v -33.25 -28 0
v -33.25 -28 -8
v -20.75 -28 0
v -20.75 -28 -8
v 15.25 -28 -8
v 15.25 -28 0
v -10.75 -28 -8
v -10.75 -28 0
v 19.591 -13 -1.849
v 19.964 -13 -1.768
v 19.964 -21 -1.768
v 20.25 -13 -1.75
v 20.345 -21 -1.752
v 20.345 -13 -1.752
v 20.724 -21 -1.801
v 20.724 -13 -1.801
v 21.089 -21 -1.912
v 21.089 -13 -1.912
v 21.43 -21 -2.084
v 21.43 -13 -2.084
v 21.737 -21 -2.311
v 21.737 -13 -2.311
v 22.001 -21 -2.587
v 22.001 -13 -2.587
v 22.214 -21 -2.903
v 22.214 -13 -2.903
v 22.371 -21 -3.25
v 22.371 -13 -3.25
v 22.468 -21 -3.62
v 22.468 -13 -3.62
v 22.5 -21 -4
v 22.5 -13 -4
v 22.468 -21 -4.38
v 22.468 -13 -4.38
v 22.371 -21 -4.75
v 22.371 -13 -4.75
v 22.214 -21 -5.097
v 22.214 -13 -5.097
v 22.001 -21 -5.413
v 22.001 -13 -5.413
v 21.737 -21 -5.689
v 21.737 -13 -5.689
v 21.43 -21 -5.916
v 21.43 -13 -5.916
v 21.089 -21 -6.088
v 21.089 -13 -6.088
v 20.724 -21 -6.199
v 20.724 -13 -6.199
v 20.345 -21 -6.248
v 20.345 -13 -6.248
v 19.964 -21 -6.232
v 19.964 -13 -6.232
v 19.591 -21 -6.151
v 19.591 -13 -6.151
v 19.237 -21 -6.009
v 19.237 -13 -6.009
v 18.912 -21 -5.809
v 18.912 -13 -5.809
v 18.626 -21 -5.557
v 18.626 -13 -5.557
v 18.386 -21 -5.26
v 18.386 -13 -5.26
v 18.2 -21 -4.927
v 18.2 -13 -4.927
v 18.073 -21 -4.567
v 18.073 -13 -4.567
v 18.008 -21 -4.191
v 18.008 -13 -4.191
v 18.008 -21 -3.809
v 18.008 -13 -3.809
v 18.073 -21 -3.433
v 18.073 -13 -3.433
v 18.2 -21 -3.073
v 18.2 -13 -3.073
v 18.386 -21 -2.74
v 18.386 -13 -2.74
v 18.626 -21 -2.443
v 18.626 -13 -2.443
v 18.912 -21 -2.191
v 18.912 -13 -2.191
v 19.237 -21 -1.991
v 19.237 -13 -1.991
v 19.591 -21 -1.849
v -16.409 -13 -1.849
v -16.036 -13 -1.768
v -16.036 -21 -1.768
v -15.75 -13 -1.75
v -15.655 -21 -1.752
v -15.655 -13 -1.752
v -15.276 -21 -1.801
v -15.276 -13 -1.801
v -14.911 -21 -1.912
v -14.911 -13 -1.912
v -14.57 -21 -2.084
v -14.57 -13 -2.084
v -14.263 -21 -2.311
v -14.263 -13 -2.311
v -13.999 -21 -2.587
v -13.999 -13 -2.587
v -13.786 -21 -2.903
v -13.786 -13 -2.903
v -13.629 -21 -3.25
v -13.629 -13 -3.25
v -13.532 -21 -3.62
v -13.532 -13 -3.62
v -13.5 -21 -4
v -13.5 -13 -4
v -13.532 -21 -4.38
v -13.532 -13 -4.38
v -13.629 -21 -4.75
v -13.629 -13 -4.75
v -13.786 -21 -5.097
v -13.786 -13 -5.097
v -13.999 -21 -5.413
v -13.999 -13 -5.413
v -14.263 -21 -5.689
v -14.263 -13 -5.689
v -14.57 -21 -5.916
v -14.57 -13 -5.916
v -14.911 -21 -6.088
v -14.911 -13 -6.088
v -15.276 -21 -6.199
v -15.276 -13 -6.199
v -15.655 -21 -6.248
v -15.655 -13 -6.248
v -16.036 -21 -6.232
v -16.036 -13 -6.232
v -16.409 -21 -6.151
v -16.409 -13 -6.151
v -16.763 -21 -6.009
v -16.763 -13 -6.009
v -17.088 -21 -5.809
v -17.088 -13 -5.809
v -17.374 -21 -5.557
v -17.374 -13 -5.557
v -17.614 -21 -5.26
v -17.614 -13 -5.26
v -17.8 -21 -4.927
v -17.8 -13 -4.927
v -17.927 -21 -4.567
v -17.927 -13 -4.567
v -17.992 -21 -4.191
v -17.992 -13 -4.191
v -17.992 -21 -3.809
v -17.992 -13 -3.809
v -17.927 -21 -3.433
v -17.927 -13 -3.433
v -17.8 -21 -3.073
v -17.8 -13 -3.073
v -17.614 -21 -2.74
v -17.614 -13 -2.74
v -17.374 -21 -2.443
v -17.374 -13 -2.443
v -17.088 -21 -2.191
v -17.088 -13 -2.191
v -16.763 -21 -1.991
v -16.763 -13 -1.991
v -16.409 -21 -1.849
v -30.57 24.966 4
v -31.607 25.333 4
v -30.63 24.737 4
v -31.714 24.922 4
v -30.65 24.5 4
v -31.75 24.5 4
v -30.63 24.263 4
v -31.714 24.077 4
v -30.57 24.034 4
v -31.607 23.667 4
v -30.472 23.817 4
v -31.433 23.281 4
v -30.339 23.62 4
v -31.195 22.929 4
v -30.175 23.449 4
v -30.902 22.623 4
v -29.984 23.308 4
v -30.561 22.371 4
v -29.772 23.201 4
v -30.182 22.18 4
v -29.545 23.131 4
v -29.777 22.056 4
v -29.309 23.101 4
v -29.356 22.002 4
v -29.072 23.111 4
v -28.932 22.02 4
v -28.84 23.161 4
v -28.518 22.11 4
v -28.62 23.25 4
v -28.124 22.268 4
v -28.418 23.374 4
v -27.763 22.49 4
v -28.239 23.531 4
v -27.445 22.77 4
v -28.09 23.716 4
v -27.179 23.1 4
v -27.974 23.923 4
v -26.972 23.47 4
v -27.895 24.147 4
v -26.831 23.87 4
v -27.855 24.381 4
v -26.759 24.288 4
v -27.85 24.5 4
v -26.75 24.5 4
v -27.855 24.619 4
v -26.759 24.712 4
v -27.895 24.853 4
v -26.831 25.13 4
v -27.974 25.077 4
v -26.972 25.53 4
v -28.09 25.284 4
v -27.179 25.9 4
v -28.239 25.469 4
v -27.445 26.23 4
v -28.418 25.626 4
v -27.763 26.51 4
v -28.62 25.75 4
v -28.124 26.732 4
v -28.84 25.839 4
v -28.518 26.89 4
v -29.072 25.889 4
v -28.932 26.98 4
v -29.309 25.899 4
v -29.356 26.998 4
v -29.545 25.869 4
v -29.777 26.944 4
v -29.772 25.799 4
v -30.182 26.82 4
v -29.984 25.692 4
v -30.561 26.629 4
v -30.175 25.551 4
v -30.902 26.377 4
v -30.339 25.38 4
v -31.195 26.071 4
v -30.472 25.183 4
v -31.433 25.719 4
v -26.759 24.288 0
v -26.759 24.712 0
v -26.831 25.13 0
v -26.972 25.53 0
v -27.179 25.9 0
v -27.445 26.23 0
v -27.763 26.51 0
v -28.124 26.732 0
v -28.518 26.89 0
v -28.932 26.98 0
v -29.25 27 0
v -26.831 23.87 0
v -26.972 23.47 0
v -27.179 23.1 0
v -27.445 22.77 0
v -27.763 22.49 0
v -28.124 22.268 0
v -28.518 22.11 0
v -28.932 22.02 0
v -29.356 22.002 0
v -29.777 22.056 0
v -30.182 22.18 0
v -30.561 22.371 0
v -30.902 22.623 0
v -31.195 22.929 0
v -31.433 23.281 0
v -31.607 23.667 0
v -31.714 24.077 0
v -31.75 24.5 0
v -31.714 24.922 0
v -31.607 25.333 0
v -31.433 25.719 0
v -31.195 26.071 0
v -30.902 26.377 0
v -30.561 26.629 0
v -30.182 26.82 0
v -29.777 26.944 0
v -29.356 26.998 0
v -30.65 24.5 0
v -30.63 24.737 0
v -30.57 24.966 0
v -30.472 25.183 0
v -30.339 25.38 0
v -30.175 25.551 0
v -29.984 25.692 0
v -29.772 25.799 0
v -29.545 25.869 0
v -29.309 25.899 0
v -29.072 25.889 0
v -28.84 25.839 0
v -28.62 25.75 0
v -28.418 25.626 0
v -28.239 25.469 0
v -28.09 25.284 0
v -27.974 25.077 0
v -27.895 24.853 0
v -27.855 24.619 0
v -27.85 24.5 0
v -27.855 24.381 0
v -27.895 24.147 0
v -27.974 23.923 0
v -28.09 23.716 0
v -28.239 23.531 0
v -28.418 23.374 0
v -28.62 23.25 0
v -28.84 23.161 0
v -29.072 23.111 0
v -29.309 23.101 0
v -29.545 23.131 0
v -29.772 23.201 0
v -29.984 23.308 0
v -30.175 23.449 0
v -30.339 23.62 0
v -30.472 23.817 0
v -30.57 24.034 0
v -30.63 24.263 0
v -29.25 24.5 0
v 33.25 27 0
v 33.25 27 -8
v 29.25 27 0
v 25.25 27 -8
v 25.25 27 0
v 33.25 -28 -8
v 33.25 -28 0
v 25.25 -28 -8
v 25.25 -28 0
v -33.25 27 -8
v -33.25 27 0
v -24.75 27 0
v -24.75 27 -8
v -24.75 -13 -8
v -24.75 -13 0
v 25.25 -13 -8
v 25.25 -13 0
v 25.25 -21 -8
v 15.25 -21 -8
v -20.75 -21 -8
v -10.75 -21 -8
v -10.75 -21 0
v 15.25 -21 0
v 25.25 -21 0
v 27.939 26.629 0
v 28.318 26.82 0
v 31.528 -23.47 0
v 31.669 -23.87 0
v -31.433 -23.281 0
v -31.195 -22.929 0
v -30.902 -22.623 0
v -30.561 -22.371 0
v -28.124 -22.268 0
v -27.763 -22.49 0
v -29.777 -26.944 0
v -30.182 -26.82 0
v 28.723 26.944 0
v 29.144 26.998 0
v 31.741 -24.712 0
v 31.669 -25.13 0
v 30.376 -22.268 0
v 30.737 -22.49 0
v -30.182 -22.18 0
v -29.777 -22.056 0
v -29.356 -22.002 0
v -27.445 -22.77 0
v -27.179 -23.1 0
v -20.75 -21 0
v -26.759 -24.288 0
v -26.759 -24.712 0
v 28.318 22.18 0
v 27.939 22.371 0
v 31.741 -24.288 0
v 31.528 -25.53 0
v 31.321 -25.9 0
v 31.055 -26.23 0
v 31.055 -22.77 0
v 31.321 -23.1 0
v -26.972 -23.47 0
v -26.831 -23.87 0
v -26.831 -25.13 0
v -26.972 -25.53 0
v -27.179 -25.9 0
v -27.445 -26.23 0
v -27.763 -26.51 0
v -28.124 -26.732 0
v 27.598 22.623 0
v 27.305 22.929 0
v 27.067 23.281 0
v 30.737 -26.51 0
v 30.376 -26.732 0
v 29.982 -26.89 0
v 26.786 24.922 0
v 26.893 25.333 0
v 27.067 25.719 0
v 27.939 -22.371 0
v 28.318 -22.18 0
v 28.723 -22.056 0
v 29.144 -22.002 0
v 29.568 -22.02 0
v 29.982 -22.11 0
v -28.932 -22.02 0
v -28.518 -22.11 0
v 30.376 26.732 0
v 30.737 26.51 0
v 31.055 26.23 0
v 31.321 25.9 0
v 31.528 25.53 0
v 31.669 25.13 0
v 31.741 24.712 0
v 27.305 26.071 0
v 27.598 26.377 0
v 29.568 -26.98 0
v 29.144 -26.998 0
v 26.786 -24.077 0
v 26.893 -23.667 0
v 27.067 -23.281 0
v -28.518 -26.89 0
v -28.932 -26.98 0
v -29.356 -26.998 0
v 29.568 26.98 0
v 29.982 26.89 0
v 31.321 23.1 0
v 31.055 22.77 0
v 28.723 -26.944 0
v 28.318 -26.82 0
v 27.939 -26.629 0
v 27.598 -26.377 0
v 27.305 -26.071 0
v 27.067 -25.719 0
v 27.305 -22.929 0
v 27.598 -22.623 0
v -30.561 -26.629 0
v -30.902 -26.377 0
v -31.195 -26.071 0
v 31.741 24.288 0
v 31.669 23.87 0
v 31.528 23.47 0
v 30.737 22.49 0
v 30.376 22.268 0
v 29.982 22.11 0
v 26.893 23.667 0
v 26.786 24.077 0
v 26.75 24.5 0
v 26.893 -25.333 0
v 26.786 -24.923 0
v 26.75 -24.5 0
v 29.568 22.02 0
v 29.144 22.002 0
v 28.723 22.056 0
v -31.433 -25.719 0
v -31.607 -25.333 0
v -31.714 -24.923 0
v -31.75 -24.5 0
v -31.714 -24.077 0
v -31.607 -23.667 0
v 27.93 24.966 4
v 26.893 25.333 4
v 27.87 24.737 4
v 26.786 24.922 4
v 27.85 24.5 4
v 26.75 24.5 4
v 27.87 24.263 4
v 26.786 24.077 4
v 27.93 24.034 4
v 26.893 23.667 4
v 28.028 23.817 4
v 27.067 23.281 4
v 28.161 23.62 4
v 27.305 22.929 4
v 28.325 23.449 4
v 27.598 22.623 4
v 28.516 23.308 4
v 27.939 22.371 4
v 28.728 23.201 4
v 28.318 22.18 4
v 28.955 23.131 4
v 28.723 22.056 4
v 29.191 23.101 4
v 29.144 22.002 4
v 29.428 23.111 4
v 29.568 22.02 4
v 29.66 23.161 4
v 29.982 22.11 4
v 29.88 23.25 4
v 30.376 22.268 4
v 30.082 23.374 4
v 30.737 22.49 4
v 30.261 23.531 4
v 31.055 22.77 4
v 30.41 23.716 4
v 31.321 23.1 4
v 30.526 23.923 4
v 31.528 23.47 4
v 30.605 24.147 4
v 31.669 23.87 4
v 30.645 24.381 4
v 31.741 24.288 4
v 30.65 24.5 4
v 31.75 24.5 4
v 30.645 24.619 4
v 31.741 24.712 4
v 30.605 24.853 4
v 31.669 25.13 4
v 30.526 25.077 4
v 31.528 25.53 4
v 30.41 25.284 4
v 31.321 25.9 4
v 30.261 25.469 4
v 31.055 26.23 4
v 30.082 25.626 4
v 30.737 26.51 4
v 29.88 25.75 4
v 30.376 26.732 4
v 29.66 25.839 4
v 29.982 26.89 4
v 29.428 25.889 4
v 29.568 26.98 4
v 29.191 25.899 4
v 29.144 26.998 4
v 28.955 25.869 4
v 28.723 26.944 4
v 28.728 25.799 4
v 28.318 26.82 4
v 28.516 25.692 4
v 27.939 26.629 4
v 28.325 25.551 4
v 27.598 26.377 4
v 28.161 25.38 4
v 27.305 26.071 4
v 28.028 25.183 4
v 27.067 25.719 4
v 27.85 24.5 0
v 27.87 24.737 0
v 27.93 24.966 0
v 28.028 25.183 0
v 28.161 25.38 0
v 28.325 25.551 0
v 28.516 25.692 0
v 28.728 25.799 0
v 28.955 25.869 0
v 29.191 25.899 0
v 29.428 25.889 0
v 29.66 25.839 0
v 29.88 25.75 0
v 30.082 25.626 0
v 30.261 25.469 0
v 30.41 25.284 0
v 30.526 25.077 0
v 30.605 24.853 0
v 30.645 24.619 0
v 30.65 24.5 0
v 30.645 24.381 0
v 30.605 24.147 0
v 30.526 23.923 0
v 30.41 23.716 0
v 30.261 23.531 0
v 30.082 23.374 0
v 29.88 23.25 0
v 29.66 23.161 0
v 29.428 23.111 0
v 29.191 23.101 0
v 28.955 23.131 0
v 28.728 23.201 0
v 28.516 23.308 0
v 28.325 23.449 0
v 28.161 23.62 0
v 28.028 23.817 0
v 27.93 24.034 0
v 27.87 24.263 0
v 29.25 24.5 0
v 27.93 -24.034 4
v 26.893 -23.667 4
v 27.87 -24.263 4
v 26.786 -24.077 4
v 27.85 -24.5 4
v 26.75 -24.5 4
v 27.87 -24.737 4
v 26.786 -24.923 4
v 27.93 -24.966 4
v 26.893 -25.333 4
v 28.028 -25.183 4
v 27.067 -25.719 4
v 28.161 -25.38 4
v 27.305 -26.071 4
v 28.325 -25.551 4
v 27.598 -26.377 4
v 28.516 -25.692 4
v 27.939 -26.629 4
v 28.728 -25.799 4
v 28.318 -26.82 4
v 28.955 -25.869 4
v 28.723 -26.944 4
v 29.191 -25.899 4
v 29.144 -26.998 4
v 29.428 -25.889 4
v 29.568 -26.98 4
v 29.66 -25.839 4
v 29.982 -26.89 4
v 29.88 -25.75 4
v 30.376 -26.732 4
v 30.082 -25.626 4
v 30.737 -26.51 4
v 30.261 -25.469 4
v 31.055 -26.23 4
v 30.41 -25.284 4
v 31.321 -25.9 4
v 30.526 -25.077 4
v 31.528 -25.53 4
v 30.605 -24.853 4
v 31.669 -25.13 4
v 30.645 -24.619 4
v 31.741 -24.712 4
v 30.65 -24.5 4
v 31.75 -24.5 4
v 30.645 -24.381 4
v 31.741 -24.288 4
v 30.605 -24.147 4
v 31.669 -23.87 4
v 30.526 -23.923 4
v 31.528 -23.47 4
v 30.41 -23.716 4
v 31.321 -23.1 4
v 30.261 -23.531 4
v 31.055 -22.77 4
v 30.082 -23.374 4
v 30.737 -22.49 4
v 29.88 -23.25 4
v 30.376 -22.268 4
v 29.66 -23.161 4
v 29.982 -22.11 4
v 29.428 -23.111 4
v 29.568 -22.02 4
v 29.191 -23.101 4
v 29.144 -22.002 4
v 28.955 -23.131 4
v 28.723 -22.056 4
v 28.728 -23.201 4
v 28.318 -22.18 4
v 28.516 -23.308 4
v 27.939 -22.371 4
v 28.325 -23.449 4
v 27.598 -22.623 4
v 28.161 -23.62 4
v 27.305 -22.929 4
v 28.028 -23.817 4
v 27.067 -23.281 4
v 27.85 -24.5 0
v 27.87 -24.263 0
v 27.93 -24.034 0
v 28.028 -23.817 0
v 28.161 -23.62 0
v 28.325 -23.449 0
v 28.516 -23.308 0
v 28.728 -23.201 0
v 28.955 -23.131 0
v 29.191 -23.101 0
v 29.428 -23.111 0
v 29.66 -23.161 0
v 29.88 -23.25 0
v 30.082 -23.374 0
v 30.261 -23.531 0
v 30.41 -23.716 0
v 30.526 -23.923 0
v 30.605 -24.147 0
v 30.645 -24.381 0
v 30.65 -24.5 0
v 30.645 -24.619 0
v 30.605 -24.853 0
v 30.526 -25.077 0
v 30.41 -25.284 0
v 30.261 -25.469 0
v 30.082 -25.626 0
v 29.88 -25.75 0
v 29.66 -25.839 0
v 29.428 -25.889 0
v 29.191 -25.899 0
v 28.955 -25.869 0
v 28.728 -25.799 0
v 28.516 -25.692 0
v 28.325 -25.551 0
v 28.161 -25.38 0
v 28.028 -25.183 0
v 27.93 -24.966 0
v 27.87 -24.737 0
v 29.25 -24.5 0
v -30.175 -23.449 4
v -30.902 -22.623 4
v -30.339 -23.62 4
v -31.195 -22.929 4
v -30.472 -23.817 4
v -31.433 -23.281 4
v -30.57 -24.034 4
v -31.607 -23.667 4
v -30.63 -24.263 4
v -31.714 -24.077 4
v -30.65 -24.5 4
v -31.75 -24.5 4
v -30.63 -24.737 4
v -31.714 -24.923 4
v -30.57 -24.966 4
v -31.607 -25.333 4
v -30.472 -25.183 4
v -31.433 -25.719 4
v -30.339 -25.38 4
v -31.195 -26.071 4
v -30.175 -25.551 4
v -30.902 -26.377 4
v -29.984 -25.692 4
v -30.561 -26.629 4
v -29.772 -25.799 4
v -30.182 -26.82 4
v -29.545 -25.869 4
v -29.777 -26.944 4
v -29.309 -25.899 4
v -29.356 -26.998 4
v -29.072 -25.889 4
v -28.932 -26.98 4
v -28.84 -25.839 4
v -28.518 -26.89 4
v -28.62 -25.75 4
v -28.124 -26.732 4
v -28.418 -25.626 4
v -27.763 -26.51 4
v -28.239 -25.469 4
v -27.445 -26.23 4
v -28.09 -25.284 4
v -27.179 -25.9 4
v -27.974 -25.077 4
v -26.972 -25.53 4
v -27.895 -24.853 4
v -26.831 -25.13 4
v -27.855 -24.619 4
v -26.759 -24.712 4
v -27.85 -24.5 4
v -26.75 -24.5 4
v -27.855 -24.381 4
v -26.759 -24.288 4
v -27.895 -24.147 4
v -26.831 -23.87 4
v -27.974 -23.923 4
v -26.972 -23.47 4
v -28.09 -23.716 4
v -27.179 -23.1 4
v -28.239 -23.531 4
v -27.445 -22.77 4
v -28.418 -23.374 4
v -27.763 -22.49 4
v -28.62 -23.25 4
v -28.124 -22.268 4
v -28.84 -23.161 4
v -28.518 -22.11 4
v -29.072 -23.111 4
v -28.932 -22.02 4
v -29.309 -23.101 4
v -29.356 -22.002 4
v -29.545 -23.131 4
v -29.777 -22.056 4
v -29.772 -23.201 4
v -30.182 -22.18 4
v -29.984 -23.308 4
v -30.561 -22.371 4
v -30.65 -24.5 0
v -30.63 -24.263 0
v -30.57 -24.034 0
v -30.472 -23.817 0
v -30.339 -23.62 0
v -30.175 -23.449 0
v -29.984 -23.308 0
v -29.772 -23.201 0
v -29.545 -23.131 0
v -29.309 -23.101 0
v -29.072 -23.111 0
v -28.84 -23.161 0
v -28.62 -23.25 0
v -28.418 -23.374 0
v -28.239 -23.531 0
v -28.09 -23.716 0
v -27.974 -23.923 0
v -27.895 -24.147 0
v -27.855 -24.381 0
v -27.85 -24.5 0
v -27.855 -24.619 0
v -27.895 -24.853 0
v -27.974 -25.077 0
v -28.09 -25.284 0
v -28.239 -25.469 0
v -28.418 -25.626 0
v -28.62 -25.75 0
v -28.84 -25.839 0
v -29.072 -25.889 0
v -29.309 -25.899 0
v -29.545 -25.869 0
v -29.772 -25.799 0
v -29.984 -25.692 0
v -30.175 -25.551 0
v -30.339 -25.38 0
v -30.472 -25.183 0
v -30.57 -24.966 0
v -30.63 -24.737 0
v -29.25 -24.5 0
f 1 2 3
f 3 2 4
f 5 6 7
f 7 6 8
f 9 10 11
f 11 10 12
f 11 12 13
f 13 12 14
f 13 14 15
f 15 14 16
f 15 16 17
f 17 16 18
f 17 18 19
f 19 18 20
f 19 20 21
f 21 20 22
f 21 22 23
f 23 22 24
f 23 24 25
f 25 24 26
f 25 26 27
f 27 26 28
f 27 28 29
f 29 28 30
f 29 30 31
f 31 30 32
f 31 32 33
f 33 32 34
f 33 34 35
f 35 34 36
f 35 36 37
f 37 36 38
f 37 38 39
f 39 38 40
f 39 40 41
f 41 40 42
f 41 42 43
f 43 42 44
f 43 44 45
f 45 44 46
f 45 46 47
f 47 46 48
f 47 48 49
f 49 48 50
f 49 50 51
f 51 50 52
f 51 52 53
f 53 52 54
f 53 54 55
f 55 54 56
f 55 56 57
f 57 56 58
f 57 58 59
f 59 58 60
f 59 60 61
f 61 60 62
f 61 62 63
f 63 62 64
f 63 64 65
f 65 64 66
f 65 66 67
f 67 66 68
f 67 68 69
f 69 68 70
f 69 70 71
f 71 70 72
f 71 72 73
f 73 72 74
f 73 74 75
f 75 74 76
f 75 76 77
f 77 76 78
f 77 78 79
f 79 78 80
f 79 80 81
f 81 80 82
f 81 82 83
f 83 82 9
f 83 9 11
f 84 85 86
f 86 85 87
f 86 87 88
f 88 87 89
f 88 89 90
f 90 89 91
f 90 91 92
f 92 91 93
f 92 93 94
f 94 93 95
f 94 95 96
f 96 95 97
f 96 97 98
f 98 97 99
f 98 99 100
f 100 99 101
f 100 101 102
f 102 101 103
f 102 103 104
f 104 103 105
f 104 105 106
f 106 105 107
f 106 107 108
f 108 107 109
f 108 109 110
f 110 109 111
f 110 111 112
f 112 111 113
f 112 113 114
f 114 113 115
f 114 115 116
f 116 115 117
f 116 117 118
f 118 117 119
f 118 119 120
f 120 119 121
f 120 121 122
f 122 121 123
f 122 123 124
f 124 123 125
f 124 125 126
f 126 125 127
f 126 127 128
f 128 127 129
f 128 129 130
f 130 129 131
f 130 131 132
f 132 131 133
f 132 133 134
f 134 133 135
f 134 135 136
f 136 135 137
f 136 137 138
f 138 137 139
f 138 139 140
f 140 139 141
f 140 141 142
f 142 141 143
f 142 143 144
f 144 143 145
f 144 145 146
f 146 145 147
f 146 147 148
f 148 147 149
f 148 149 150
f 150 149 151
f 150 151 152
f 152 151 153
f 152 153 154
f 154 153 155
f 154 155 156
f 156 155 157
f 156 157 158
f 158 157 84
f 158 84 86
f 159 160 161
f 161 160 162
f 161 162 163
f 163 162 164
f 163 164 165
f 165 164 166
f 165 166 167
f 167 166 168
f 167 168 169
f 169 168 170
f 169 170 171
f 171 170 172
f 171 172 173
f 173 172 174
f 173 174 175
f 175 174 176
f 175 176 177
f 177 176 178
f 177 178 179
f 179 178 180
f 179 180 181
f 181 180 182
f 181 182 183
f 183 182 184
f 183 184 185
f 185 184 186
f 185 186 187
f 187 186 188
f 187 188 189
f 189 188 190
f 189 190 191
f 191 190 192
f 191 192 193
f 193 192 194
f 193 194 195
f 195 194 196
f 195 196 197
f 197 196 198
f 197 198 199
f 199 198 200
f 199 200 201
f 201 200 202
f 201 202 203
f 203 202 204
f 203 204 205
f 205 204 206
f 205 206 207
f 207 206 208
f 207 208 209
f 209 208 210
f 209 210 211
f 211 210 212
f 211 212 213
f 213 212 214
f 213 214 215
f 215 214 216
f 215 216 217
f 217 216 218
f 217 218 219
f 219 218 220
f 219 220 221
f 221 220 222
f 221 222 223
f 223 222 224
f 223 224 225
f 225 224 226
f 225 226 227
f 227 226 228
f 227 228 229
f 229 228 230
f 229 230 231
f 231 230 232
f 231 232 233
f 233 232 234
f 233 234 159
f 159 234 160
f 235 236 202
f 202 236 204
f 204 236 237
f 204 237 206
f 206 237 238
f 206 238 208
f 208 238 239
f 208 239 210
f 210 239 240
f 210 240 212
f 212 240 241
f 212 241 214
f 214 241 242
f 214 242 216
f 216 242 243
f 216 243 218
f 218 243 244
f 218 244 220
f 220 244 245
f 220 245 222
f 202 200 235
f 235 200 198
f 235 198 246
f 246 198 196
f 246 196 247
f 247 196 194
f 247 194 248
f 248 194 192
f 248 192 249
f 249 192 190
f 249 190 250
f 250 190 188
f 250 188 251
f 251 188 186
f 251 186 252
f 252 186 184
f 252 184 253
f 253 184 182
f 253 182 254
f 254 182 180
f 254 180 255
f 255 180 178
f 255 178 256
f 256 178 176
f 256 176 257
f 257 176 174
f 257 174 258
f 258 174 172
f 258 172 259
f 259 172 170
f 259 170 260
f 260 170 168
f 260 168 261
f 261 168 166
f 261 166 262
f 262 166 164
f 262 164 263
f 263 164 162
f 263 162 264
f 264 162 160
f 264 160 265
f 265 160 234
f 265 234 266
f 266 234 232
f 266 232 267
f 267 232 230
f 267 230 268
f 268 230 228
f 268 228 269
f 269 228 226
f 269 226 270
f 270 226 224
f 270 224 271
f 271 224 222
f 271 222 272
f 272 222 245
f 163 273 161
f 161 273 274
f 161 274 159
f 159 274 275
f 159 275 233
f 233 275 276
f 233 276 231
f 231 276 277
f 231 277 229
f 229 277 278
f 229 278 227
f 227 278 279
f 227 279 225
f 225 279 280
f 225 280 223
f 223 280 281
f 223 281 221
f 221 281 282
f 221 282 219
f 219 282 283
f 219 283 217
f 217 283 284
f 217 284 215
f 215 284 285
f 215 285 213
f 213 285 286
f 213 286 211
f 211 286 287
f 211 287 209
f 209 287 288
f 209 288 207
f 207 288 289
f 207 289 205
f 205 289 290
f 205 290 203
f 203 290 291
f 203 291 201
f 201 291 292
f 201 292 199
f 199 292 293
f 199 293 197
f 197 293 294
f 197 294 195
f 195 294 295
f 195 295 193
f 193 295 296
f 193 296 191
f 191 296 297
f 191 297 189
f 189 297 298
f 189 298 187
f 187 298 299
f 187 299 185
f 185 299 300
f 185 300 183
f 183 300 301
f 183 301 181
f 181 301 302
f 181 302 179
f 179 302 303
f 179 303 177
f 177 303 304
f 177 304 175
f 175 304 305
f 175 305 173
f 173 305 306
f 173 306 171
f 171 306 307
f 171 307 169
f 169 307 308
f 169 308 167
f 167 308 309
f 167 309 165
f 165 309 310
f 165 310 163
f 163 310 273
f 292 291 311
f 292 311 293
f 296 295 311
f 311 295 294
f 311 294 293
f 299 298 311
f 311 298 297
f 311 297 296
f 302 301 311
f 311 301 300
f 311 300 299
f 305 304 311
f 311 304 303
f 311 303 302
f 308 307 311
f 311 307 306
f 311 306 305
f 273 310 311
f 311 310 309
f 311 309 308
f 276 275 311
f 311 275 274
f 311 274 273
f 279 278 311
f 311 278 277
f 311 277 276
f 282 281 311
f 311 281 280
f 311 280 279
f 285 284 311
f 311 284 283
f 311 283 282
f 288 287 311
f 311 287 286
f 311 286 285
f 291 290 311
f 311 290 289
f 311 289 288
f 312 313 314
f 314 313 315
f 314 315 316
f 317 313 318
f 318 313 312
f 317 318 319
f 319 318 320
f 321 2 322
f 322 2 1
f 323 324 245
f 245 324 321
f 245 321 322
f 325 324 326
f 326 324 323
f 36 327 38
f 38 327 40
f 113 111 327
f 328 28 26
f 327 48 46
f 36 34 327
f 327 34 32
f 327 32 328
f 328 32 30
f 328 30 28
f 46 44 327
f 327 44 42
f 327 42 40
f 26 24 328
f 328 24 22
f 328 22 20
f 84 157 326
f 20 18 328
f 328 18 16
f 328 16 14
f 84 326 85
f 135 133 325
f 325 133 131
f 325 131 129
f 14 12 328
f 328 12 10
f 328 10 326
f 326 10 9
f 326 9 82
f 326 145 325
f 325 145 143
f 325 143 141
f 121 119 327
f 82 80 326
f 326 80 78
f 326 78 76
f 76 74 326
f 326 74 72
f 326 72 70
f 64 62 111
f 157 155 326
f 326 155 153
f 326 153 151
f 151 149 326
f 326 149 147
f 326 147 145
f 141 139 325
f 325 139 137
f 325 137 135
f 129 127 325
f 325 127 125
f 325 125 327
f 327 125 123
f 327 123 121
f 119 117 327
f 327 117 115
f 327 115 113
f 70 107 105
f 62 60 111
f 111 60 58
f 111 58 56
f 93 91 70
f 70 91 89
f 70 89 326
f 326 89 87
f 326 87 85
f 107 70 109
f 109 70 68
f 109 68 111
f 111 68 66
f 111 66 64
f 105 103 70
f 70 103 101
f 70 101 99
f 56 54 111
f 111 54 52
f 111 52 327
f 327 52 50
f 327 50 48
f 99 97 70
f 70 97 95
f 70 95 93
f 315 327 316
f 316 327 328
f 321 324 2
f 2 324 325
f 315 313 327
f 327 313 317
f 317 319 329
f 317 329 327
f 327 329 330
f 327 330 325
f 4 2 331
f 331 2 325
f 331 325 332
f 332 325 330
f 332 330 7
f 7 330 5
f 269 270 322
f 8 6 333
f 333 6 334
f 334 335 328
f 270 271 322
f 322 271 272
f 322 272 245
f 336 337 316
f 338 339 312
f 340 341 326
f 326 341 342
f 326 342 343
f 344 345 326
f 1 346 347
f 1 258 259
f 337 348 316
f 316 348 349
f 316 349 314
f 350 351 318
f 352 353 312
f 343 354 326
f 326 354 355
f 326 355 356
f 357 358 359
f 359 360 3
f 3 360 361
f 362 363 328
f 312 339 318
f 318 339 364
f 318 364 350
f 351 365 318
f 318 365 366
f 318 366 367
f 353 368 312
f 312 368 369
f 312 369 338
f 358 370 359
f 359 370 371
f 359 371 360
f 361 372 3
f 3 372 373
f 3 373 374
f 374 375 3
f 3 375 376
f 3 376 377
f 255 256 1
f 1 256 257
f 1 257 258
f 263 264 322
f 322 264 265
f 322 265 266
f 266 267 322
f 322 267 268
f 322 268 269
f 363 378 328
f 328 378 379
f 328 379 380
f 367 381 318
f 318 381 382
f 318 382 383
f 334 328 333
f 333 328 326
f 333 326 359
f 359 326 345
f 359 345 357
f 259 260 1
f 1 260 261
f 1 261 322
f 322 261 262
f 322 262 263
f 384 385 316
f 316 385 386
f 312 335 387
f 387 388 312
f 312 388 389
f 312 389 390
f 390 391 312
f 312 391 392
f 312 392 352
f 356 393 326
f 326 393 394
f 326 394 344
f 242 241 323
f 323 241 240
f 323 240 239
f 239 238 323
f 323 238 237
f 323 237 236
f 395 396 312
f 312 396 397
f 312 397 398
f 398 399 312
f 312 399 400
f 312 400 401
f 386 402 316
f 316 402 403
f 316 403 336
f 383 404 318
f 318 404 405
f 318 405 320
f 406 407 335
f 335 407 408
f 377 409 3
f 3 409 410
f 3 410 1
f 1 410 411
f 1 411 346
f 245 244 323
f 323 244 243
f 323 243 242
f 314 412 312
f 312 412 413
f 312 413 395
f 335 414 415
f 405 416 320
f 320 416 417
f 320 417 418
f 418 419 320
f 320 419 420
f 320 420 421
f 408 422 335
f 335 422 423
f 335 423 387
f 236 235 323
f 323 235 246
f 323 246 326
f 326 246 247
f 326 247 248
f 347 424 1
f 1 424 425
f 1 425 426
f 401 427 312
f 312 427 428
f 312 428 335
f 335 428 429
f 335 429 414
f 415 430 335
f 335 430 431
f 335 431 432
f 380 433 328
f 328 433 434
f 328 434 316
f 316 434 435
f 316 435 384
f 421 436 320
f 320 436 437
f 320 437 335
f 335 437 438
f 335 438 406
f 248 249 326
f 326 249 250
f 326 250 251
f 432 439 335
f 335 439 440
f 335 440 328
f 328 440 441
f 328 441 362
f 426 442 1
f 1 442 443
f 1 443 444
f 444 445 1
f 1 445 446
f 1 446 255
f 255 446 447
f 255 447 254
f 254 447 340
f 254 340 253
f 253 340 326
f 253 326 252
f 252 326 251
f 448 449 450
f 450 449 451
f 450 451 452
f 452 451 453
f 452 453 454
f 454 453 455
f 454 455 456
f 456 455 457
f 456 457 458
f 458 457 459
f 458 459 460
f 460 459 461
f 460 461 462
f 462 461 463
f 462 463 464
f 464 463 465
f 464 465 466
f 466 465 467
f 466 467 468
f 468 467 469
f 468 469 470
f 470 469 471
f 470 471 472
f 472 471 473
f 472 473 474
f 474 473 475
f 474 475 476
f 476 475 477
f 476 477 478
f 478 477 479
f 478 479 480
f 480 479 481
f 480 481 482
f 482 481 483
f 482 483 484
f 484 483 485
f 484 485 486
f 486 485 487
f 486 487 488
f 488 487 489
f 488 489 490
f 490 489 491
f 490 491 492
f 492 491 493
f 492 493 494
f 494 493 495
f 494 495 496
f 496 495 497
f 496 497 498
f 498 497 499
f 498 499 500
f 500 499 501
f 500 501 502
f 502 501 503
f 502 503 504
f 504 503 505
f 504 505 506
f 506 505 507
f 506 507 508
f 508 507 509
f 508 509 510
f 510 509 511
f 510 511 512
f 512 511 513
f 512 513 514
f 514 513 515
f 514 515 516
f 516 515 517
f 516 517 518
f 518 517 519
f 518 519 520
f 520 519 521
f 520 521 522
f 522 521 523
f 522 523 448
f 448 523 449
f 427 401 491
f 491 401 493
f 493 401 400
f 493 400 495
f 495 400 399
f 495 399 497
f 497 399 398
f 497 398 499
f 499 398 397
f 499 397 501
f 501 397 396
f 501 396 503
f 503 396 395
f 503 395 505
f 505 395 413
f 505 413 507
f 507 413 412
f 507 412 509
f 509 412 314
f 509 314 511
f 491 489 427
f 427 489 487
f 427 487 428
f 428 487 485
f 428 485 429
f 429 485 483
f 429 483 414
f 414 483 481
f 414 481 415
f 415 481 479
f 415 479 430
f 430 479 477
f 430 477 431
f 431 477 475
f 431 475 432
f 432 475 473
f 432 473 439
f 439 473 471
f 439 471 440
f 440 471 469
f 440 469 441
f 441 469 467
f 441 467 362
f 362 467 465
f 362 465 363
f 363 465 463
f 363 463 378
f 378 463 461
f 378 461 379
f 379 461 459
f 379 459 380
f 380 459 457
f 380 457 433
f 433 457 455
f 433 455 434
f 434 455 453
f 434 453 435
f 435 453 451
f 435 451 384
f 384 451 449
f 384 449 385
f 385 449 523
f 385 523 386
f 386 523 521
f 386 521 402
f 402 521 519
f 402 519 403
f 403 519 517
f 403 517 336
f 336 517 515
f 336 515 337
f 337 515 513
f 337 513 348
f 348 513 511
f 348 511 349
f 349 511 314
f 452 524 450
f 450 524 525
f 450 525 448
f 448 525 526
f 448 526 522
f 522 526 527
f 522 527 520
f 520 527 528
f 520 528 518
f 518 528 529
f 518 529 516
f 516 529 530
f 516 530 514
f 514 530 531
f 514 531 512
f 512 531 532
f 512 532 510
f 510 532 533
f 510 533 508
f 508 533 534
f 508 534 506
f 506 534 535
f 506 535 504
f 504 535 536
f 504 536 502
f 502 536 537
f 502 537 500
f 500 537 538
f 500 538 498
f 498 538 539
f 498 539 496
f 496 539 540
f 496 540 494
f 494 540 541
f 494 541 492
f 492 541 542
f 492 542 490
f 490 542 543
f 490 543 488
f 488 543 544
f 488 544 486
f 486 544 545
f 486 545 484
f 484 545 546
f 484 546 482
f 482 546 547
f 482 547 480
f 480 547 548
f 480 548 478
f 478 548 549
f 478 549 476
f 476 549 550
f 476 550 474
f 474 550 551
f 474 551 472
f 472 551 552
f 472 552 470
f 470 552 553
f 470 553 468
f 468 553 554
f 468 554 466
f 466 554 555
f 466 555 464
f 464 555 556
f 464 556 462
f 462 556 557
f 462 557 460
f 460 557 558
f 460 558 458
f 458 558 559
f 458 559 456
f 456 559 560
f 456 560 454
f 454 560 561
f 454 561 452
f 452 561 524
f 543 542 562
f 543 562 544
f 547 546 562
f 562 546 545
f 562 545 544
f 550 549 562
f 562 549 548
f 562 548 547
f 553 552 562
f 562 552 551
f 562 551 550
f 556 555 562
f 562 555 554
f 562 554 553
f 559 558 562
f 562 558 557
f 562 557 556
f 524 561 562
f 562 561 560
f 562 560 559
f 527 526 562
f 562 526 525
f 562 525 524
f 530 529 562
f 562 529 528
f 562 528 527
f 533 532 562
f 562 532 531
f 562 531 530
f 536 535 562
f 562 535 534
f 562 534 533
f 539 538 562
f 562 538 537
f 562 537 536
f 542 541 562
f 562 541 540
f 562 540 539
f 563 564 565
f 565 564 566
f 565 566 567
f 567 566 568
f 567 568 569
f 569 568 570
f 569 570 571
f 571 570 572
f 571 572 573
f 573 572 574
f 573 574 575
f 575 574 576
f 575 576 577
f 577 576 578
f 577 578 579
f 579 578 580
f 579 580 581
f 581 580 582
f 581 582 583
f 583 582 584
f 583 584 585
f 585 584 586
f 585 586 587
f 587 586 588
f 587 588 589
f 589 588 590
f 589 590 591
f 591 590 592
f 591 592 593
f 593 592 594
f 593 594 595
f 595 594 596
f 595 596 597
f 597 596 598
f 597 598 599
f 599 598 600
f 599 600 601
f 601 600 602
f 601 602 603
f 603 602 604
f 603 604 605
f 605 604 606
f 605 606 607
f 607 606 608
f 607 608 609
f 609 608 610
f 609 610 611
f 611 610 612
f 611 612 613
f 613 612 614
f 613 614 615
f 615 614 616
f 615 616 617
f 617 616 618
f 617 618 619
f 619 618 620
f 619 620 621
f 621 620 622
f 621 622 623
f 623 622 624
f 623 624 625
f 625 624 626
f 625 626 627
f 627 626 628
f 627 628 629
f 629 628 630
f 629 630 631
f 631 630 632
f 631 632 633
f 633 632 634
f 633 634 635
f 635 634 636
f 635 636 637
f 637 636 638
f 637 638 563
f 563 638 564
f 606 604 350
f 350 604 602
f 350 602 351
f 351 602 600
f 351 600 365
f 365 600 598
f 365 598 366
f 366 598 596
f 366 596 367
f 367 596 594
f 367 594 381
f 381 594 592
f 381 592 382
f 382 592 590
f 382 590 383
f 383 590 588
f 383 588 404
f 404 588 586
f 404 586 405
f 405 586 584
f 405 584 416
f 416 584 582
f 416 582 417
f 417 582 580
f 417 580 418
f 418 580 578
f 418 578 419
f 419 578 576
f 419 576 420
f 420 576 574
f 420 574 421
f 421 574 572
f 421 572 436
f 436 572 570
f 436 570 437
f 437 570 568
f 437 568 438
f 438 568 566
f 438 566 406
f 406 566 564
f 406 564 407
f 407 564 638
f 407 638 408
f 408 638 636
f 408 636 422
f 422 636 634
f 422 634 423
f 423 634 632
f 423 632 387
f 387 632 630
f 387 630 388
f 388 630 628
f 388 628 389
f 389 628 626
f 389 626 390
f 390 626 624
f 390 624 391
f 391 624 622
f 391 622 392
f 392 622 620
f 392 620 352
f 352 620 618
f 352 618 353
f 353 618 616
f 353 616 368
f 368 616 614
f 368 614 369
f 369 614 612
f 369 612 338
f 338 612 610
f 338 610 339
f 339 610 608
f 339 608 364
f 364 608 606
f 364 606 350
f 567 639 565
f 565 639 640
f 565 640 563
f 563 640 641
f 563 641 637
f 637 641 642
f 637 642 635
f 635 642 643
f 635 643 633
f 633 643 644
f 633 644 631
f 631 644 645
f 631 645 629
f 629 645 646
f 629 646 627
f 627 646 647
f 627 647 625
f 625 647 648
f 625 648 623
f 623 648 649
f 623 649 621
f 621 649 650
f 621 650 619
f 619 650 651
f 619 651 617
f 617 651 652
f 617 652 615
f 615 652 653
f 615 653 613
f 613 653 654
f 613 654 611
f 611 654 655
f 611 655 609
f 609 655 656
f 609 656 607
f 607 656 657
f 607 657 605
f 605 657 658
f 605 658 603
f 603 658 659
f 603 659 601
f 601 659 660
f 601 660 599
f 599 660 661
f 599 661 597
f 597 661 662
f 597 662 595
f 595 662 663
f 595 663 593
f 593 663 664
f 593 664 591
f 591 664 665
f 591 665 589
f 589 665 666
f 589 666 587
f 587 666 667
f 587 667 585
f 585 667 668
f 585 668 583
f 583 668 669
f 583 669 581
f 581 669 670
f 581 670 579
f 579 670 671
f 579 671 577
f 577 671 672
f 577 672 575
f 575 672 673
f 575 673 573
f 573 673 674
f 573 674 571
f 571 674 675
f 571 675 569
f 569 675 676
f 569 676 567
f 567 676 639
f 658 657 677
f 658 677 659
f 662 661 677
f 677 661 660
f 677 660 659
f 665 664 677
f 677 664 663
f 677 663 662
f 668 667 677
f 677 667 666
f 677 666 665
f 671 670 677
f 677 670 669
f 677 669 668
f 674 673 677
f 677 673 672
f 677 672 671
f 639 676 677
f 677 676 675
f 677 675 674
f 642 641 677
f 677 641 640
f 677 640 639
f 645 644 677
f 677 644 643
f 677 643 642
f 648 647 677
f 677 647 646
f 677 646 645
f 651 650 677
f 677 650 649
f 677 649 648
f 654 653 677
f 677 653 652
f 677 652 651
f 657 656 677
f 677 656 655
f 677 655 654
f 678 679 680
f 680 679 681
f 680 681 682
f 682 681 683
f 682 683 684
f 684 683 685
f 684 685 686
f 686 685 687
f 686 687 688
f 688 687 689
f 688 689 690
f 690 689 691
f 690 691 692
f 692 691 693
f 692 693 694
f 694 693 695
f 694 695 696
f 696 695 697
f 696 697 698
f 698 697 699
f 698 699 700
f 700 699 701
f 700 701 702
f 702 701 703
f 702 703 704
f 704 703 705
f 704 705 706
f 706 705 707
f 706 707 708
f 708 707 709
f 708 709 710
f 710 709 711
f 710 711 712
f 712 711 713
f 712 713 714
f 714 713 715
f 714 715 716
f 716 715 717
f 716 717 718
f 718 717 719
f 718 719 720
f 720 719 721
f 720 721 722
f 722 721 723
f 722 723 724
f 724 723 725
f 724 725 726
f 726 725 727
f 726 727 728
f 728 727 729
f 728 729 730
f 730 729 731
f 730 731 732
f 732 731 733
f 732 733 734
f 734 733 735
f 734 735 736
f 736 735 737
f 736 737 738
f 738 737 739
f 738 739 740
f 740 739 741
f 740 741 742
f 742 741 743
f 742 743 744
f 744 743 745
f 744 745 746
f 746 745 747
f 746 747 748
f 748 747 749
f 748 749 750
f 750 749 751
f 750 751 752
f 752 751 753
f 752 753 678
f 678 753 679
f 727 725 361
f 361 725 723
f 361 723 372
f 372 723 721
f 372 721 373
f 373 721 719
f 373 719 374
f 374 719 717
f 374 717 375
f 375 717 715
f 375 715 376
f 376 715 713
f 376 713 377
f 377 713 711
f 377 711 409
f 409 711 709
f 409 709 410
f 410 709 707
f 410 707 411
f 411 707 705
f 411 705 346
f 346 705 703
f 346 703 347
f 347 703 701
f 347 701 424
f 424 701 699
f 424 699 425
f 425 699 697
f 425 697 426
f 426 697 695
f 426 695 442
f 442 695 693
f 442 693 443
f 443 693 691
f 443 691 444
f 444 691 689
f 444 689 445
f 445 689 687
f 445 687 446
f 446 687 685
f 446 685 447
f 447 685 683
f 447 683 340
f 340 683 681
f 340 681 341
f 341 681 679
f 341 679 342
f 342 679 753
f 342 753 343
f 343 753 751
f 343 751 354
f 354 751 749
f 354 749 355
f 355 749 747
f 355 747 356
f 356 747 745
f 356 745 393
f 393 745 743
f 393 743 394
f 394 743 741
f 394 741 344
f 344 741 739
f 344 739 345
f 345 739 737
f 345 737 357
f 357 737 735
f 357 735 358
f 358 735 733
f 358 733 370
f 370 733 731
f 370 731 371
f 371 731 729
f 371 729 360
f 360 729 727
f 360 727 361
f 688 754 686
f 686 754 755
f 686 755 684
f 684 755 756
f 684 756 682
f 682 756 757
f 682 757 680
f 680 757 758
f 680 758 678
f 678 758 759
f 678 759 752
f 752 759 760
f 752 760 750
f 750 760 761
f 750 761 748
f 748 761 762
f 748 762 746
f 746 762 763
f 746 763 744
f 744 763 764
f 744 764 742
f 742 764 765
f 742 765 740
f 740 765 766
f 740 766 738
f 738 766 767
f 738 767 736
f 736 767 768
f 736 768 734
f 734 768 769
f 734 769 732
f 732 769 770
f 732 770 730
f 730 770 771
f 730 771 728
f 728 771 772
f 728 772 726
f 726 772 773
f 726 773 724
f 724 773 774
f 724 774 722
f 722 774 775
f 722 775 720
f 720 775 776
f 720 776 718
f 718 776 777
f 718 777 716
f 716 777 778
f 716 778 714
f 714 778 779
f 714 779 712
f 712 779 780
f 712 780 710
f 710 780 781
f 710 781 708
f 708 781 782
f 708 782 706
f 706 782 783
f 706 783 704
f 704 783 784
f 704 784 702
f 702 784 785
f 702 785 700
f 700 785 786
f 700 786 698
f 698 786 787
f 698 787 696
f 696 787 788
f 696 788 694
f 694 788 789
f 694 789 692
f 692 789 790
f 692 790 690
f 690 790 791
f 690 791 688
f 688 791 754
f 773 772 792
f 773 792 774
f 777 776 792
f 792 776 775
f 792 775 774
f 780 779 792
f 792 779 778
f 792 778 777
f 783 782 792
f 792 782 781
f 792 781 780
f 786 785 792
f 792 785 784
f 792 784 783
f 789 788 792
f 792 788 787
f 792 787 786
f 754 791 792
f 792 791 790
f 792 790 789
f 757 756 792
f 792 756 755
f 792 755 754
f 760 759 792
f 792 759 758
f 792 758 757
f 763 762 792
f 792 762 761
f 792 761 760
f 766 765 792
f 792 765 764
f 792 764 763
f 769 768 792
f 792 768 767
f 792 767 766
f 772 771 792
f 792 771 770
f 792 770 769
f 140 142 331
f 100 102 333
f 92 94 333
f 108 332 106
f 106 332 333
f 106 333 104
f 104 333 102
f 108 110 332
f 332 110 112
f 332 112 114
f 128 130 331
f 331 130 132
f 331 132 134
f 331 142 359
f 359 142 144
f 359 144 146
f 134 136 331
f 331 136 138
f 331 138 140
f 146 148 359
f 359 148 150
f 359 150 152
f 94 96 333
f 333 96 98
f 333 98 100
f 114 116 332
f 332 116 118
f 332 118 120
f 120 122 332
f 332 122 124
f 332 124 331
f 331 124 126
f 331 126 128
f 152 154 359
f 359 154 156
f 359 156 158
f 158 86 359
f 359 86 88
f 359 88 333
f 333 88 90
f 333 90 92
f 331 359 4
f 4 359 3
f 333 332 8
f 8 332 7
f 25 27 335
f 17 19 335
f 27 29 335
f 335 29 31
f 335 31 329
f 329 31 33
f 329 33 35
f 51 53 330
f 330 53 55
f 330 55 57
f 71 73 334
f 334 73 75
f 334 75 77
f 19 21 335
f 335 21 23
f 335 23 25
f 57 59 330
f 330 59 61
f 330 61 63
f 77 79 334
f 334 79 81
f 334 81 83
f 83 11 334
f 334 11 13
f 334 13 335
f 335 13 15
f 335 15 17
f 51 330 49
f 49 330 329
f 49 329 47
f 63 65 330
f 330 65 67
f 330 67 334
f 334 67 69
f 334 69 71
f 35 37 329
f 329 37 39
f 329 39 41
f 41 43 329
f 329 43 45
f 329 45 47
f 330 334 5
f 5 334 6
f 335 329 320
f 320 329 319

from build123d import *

# Parameters (mm, degrees)
SCHIZZO1_R                     = 2.5
SCHIZZO1_R_2                   = 1.4
ESTRUSIONE_ESTRUSIONE1_DEPTH   = 4
ESTRUSIONE_ESTRUSIONE1_2_DEPTH = 4
ESTRUSIONE_ESTRUSIONE1_3_DEPTH = 4
ESTRUSIONE_ESTRUSIONE1_4_DEPTH = 4
ESTRUSIONE_ESTRUSIONE2_DEPTH   = 8
SCHIZZO3_R                     = 2.25
TAGLIO_ESTRUSIONE1_DEPTH       = 18
SCHIZZO4_W                     = 10
SCHIZZO4_H                     = 8
TAGLIO_ESTRUSIONE2_DEPTH       = 7


with BuildPart() as part:
    # Schizzo1 → Estrusione-Estrusione1 (new body)
    with BuildSketch(Plane.XY):
        with Locations((-29.25, 24.5)):
            Circle(SCHIZZO1_R)
        with Locations((-29.25, 24.5)):
            Circle(SCHIZZO1_R_2, mode=Mode.SUBTRACT)
    extrude(amount=ESTRUSIONE_ESTRUSIONE1_DEPTH)



with BuildPart() as body_2:
    # Schizzo1 → Estrusione-Estrusione1 2 (new body)
    with BuildSketch(Plane.XY):
        with Locations((29.25, 24.5)):
            Circle(SCHIZZO1_R)
        with Locations((29.25, 24.5)):
            Circle(SCHIZZO1_R_2, mode=Mode.SUBTRACT)
    extrude(amount=ESTRUSIONE_ESTRUSIONE1_2_DEPTH)


with BuildPart() as body_3:
    # Schizzo1 → Estrusione-Estrusione1 3 (new body)
    with BuildSketch(Plane.XY):
        with Locations((29.25, -24.5)):
            Circle(SCHIZZO1_R)
        with Locations((29.25, -24.5)):
            Circle(SCHIZZO1_R_2, mode=Mode.SUBTRACT)
    extrude(amount=ESTRUSIONE_ESTRUSIONE1_3_DEPTH)


with BuildPart() as body_4:
    # Schizzo1 → Estrusione-Estrusione1 4 (new body)
    with BuildSketch(Plane.XY):
        with Locations((-29.25, -24.5)):
            Circle(SCHIZZO1_R)
        with Locations((-29.25, -24.5)):
            Circle(SCHIZZO1_R_2, mode=Mode.SUBTRACT)
    extrude(amount=ESTRUSIONE_ESTRUSIONE1_4_DEPTH)


with BuildPart() as part_1:
    add(part.part)

    add(body_2.part)  # Estrusione-Estrusione2 merges body 2

    add(body_3.part)  # Estrusione-Estrusione2 merges body 3

    add(body_4.part)  # Estrusione-Estrusione2 merges body 4
    # Schizzo2 → Estrusione-Estrusione2 (add)
    with BuildSketch(Plane.XY):
        Polygon((33.25, 27), (33.25, -28), (-33.25, -28), (-33.25, 27), (-24.75, 27), (-24.75, -13), (25.25, -13), (25.25, 27), align=None)
    extrude(amount=-ESTRUSIONE_ESTRUSIONE2_DEPTH)

    # Schizzo3 → Taglio-Estrusione1 (cut)
    with BuildSketch(Plane.XZ.offset(28)):
        with Locations((-15.75, -4)):
            Circle(SCHIZZO3_R)
        with Locations((20.25, -4)):
            Circle(SCHIZZO3_R)
    extrude(amount=-TAGLIO_ESTRUSIONE1_DEPTH, mode=Mode.SUBTRACT)

    # Schizzo4 → Taglio-Estrusione2 (cut)
    with BuildSketch(Plane.XZ.offset(28)):
        with Locations((-15.75, -4)):
            Rectangle(SCHIZZO4_W, SCHIZZO4_H)
        with Locations((20.25, -4)):
            Rectangle(SCHIZZO4_W, SCHIZZO4_H)
    extrude(amount=-TAGLIO_ESTRUSIONE2_DEPTH, mode=Mode.SUBTRACT)


solid = part_1.part
